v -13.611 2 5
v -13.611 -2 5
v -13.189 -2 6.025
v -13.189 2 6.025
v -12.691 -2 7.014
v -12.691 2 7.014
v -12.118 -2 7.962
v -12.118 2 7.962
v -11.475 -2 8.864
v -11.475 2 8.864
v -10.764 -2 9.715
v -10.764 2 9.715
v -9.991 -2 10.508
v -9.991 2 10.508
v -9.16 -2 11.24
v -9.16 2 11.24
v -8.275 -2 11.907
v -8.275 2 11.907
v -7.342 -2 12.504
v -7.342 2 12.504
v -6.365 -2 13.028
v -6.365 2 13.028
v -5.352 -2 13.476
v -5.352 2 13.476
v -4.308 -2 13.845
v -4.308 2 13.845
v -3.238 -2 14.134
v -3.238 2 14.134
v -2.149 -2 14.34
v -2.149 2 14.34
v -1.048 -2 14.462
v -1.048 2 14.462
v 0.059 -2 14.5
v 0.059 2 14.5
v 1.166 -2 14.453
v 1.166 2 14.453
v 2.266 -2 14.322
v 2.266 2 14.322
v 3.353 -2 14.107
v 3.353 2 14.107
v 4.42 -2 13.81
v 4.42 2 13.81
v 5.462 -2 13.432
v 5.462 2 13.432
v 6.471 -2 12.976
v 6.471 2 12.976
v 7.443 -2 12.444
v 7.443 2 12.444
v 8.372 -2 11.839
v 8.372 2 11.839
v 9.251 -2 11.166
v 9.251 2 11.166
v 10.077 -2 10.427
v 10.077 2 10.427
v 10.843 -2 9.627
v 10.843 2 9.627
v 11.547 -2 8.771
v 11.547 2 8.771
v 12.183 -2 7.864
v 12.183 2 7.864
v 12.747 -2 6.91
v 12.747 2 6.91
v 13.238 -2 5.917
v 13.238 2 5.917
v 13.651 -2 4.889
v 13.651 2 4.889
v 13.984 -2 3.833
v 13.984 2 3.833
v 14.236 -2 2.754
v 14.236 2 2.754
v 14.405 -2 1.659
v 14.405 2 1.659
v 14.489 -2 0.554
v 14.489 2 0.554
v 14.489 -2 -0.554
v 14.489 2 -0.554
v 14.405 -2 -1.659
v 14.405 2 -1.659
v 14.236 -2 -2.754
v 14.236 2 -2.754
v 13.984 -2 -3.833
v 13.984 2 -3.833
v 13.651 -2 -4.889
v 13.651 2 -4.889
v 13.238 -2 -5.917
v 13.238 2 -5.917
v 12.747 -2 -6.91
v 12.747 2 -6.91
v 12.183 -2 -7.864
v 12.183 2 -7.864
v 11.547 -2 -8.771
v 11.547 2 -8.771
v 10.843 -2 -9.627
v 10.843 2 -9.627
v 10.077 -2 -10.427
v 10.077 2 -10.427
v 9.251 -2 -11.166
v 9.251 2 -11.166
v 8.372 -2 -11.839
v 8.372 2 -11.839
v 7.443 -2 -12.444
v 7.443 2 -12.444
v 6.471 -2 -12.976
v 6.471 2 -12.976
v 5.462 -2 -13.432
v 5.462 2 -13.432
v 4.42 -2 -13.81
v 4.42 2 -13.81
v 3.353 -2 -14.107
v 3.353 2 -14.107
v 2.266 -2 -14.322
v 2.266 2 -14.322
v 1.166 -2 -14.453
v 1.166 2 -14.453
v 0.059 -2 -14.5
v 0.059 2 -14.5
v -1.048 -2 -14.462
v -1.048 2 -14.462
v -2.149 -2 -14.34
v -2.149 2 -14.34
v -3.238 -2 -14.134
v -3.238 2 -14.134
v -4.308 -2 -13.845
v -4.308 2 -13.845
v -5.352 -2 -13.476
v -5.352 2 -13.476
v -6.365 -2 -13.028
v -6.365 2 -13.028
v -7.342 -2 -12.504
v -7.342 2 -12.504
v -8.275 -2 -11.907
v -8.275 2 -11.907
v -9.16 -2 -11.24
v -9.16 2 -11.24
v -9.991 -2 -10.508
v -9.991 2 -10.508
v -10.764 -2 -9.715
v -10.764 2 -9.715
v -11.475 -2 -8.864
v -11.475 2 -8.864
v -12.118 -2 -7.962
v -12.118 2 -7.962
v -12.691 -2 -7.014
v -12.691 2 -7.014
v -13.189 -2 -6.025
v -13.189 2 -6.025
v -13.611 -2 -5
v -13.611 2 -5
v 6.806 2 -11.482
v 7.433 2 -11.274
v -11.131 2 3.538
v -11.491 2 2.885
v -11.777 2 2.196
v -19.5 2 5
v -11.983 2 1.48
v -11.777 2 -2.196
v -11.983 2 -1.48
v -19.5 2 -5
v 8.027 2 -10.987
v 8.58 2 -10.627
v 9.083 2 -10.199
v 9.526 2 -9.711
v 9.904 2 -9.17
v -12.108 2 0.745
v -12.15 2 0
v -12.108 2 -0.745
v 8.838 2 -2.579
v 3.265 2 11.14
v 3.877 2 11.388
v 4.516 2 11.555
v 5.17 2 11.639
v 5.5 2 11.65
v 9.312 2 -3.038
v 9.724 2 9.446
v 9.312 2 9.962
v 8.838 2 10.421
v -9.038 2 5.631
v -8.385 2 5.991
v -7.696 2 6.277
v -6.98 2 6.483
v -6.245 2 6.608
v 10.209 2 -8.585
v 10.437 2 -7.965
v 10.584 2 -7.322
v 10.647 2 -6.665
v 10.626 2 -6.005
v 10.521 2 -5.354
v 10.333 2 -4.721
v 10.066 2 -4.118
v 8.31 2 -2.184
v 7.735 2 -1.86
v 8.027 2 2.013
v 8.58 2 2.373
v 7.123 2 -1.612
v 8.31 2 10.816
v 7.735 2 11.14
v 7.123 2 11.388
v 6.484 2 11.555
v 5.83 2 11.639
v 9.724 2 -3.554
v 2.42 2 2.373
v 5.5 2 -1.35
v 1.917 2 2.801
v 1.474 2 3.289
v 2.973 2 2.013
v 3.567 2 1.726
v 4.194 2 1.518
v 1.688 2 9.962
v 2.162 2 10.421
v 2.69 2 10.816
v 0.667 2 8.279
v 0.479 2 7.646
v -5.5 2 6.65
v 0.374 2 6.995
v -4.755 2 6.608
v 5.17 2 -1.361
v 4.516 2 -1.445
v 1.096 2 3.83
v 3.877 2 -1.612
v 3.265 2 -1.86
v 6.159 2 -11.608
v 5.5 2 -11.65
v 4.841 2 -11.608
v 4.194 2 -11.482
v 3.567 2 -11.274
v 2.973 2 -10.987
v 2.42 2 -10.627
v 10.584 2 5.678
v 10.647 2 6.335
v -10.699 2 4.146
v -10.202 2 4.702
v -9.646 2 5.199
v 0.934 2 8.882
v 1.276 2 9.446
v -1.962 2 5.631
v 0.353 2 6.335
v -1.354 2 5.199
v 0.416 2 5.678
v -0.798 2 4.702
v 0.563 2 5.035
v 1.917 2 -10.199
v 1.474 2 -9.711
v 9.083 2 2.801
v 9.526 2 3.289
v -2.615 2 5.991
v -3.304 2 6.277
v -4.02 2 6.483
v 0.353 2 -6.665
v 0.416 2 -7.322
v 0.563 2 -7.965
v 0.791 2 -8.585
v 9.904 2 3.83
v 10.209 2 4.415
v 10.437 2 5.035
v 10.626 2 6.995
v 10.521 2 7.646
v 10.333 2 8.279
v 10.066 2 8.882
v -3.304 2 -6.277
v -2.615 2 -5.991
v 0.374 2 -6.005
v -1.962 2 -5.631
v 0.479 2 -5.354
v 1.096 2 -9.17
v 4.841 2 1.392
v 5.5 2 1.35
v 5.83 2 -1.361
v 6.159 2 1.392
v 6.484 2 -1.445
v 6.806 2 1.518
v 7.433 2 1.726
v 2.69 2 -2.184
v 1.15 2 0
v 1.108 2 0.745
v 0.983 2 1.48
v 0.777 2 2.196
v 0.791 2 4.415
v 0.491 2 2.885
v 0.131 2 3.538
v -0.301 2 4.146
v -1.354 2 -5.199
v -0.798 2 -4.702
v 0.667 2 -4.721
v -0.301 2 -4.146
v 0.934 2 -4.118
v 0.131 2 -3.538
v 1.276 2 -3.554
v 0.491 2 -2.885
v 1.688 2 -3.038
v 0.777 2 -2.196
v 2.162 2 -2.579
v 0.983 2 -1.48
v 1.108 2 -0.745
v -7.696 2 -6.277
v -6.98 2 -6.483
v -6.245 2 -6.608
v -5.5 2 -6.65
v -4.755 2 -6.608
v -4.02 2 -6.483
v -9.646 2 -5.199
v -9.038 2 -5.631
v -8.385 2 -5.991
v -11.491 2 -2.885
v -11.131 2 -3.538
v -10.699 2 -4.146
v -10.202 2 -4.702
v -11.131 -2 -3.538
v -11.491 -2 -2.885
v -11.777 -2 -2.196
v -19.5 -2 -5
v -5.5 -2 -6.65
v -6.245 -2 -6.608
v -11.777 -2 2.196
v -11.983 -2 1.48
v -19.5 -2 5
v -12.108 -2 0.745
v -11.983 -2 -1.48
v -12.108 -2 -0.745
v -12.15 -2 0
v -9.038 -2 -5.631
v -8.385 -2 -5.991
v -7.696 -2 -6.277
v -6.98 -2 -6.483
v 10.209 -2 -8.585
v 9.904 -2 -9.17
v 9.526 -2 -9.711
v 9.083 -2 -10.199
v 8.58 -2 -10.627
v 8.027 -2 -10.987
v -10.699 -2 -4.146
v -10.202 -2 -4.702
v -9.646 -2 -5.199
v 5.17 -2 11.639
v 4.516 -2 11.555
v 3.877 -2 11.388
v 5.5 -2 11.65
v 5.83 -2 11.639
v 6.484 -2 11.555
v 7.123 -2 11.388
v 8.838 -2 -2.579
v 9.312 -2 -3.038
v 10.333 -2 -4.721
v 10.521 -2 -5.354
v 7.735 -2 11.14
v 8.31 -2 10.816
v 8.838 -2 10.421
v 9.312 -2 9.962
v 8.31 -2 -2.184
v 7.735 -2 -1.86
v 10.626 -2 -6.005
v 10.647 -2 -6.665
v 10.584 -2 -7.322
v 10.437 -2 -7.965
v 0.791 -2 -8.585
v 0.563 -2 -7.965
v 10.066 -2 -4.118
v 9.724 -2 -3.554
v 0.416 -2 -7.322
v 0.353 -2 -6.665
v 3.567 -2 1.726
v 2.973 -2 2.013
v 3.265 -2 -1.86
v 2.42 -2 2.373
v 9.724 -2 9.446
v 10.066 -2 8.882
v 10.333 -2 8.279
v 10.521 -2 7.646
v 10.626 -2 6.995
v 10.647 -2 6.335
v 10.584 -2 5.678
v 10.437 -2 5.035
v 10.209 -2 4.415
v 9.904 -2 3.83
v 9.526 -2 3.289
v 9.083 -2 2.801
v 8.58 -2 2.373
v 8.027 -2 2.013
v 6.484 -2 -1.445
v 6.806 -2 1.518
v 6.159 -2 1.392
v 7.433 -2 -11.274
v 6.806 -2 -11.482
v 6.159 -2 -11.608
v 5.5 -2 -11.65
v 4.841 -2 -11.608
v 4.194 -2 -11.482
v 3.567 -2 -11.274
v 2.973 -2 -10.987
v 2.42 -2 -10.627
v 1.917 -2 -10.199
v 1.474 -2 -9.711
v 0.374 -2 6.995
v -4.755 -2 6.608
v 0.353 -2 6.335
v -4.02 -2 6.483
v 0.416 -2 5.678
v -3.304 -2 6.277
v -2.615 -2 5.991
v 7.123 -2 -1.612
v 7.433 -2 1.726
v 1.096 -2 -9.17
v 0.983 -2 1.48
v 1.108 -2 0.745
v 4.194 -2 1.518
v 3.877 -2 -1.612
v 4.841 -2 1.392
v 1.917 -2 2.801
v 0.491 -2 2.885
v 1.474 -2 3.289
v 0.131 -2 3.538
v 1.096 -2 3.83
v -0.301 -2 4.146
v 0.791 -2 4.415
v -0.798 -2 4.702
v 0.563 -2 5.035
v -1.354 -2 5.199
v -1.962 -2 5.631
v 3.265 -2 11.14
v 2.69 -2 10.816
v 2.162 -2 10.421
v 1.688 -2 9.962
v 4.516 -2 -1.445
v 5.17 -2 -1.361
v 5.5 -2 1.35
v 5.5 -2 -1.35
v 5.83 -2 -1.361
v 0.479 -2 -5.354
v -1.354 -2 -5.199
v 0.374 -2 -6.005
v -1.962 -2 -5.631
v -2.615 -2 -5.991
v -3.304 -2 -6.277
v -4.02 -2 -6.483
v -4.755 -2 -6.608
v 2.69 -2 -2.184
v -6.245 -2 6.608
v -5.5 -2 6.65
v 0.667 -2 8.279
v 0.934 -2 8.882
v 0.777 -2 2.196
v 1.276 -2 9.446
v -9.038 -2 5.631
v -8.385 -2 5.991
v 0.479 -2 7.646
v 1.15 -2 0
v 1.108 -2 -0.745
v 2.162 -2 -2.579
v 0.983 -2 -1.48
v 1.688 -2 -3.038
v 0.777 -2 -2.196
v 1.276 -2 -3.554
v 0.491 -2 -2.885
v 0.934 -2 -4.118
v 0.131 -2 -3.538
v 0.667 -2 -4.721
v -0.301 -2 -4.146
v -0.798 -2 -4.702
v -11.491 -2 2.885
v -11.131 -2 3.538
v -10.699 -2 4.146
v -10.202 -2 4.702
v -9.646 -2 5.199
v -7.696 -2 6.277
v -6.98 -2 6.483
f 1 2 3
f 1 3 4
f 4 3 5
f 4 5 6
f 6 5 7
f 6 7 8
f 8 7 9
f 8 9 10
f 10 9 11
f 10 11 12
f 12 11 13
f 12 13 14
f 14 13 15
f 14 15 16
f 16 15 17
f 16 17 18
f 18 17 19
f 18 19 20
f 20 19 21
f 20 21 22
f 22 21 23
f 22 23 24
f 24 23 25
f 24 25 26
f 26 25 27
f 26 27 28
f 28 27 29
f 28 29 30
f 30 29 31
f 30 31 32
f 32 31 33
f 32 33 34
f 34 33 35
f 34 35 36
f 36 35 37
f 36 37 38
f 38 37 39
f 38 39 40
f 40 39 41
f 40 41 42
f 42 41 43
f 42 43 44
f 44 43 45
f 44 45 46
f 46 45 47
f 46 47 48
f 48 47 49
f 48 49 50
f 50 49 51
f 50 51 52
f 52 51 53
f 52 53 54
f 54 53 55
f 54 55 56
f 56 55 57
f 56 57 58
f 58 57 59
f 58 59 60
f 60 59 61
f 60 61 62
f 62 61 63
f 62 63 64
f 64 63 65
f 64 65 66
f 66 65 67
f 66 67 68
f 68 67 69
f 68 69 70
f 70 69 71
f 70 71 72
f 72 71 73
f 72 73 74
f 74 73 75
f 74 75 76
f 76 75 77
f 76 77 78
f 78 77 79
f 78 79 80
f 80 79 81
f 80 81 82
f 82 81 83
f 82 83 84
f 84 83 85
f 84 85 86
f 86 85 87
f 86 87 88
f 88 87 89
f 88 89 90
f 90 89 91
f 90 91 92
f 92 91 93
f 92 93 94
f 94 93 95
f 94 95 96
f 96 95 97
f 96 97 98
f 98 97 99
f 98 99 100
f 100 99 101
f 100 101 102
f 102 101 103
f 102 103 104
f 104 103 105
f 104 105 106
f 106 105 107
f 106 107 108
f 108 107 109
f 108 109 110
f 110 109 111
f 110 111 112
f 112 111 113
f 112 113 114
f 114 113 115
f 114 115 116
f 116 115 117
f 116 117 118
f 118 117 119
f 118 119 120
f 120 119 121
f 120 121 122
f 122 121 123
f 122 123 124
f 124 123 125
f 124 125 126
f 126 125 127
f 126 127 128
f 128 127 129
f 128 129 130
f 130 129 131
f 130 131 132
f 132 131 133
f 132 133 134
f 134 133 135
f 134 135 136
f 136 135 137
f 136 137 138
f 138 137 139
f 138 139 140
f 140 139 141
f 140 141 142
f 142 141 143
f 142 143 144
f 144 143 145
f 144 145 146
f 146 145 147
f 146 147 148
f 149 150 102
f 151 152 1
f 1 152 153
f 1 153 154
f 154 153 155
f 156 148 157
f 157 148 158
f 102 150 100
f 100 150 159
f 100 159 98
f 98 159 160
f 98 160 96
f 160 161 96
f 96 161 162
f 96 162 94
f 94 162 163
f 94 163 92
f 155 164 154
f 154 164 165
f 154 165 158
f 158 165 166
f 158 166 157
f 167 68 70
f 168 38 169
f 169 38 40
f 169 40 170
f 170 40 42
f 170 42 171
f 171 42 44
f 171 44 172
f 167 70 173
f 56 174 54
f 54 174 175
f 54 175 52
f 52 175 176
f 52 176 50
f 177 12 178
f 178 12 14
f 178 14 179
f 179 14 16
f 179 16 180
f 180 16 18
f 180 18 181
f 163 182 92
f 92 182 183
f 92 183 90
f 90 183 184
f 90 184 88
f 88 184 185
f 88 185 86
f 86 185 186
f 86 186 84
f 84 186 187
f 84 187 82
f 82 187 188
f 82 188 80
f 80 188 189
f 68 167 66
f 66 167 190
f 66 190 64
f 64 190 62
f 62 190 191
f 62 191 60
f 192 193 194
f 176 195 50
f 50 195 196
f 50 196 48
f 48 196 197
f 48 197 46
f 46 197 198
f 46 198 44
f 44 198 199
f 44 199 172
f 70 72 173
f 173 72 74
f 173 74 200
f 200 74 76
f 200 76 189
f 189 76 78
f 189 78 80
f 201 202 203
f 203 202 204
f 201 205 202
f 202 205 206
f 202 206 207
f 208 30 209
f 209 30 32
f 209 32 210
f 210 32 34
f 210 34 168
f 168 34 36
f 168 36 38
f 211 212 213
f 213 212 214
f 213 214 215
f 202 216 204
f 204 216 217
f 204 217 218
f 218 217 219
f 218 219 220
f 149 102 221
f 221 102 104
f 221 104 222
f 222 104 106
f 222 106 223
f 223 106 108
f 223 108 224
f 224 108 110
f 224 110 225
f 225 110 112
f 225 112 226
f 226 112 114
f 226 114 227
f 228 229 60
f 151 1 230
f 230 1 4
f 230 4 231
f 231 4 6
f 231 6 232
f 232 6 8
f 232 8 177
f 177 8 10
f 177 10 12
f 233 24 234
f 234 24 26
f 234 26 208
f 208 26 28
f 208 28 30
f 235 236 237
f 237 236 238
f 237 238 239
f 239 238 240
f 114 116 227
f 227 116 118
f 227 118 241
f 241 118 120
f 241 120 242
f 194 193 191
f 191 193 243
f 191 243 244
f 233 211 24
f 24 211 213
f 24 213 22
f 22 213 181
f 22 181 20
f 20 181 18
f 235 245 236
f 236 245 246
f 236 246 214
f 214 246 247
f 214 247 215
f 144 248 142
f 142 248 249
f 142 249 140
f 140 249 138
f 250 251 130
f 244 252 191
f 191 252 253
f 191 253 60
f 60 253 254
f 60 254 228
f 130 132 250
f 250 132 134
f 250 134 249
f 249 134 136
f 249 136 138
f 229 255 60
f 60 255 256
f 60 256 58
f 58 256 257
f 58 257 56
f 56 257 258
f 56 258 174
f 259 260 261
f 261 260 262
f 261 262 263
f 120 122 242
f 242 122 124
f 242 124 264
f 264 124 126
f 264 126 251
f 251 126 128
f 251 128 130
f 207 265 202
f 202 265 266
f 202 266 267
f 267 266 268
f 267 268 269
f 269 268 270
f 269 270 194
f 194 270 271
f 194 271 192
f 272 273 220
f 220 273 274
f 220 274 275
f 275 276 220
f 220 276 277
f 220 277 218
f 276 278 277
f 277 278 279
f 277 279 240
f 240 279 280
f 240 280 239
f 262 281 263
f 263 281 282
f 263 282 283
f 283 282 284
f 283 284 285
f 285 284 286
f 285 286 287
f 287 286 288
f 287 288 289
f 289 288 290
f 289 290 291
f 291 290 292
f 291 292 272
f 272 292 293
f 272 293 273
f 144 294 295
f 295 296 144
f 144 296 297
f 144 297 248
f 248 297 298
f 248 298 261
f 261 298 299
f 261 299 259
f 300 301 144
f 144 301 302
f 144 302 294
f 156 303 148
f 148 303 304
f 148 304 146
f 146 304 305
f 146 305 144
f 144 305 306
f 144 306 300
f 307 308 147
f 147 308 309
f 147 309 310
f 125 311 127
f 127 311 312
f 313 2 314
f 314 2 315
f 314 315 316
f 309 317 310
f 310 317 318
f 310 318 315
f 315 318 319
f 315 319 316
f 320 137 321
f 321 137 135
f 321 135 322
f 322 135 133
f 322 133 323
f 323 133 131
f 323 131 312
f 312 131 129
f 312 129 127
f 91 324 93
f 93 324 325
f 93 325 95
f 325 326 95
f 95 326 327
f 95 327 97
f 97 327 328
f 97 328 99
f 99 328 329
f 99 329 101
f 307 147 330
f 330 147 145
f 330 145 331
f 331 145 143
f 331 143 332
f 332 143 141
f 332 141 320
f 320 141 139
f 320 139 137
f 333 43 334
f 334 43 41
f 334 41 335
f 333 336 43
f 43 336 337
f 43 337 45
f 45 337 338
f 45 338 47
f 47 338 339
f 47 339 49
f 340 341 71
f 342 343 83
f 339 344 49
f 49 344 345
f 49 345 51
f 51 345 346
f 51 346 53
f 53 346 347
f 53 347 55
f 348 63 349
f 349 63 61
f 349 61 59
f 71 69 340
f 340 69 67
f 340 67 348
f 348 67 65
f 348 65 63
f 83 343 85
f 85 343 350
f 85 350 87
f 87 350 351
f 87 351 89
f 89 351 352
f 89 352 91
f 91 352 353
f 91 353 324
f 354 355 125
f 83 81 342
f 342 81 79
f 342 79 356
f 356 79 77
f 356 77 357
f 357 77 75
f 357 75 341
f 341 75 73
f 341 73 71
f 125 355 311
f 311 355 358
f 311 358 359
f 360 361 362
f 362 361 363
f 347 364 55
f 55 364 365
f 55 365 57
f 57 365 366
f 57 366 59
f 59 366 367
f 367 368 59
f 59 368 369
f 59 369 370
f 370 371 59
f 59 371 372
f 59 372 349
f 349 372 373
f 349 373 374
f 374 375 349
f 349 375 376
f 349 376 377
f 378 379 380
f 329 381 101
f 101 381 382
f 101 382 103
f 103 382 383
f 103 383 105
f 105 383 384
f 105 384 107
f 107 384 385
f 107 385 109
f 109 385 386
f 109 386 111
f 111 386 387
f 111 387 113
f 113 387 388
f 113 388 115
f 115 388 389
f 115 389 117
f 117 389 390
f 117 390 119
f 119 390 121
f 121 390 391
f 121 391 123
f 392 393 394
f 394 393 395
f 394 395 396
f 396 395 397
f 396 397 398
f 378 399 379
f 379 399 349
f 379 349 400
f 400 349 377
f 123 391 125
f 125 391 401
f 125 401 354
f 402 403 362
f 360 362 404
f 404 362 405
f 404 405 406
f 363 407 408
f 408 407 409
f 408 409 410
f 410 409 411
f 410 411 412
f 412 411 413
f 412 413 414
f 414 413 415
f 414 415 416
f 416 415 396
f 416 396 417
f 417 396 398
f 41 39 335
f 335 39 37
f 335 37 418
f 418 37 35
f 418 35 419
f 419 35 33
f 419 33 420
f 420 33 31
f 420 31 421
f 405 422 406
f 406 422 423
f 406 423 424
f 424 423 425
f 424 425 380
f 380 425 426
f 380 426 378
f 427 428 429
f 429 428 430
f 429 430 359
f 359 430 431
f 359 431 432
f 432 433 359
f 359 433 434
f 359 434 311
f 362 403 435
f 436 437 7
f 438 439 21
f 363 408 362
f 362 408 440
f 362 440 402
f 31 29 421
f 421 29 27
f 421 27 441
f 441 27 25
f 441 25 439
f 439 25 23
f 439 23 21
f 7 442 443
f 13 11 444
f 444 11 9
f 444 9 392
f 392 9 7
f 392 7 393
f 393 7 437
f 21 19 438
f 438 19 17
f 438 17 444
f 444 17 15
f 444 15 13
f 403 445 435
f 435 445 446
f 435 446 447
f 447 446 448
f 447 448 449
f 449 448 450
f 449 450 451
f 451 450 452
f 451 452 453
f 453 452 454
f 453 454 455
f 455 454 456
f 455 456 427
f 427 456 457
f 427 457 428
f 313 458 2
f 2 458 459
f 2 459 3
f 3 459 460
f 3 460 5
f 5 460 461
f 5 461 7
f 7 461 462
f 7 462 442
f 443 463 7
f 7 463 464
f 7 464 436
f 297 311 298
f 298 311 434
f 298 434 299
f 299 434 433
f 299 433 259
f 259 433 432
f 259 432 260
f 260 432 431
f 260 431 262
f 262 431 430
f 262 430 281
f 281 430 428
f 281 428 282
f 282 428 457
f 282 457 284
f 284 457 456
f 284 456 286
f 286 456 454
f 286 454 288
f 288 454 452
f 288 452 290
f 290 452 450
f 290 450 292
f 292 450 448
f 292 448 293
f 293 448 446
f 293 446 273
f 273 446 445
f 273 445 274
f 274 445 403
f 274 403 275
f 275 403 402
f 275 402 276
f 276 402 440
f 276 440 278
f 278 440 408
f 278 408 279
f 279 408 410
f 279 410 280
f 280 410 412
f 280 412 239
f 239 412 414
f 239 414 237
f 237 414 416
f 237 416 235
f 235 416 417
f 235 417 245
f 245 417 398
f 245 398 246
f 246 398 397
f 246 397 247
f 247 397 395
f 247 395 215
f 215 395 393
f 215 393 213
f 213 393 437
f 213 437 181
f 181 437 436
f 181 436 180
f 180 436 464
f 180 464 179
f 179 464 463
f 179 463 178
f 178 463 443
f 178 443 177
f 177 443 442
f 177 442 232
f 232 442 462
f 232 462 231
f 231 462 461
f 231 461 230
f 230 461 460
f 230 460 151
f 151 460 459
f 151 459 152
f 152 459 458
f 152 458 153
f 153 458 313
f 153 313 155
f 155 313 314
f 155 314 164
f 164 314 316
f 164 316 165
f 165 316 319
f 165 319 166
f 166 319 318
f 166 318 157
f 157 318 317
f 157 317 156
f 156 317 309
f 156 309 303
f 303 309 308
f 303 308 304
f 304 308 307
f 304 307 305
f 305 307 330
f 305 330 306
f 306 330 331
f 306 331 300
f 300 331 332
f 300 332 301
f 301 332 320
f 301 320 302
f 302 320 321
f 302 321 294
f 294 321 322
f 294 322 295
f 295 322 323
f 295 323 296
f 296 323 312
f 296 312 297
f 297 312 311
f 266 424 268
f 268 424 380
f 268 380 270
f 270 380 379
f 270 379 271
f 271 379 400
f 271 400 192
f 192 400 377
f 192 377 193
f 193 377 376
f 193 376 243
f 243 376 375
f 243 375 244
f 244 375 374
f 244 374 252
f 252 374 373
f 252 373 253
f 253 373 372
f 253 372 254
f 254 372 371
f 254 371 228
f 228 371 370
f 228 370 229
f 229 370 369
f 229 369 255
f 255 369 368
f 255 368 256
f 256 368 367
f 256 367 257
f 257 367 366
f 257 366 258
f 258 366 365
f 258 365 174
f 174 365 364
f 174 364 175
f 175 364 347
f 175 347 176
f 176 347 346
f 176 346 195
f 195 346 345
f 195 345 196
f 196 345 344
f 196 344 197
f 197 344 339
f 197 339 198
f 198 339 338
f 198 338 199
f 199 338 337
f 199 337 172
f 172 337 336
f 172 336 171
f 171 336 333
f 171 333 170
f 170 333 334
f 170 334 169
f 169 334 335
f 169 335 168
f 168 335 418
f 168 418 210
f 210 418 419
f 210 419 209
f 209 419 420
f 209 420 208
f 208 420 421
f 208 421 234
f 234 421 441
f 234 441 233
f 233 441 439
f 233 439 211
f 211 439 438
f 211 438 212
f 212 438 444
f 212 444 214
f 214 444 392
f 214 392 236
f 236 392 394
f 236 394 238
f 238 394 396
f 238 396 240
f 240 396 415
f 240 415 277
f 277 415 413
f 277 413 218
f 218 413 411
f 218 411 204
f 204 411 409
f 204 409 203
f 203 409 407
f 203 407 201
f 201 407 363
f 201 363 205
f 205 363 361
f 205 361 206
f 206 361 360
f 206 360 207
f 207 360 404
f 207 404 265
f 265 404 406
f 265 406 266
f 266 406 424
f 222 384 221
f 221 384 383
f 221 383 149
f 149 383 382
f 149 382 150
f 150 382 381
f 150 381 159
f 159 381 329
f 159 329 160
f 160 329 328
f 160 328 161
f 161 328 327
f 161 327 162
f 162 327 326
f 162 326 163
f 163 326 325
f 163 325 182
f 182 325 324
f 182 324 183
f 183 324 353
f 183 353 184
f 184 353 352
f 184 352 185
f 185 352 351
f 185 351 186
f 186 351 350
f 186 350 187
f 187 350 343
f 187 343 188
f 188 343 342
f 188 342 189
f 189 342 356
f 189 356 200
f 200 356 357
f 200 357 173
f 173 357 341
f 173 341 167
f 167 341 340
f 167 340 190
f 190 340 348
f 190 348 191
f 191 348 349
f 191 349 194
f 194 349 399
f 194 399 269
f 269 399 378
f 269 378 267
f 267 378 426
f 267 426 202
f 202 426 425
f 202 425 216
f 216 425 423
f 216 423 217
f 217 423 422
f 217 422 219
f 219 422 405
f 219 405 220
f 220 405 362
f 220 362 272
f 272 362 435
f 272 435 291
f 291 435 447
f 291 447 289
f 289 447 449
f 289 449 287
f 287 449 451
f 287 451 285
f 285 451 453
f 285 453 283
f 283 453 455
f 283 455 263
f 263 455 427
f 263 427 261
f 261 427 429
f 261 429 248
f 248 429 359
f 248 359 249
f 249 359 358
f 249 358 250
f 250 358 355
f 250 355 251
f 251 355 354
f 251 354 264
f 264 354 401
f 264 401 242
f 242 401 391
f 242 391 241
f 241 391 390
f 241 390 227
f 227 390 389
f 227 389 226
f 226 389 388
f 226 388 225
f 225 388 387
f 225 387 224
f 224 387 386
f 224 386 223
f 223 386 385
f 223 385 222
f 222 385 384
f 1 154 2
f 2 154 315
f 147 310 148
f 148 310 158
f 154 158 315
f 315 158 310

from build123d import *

# Parameters (mm, degrees)
SKETCH1_R             = 14.5
SKETCH1_R_2           = 6.65
SKETCH1_R_3           = 5.15
DISCO_SEPARADOR_DEPTH = 4
SKETCH2_W             = 7
SKETCH2_H             = 10
PATA_AL_HUESO_DEPTH   = 4


with BuildPart() as part:
    # Sketch1 → Disco_separador (new body)
    with BuildSketch(Plane(origin=(0, -2, 0), x_dir=(1, 0, 0), z_dir=(0, 1, 0))):
        with Locations(Location((0, 0, 0), (0, 0, 270))):
            Circle(SKETCH1_R)
        with Locations(Location((-5.5, 0, 0), (0, 0, 270))):
            Circle(SKETCH1_R_2, mode=Mode.SUBTRACT)
        with Locations(Location((5.5, -6.5, 0), (0, 0, 270))):
            Circle(SKETCH1_R_3, mode=Mode.SUBTRACT)
        with Locations(Location((5.5, 6.5, 0), (0, 0, 270))):
            Circle(SKETCH1_R_3, mode=Mode.SUBTRACT)
    extrude(amount=DISCO_SEPARADOR_DEPTH)

    # Sketch2 → Pata_al_hueso (add)
    with BuildSketch(Plane(origin=(0, -2, 0), x_dir=(1, 0, 0), z_dir=(0, 1, 0))):
        with Locations((-16, 0)):
            Rectangle(SKETCH2_W, SKETCH2_H)
    extrude(amount=PATA_AL_HUESO_DEPTH)


solid = part.part
